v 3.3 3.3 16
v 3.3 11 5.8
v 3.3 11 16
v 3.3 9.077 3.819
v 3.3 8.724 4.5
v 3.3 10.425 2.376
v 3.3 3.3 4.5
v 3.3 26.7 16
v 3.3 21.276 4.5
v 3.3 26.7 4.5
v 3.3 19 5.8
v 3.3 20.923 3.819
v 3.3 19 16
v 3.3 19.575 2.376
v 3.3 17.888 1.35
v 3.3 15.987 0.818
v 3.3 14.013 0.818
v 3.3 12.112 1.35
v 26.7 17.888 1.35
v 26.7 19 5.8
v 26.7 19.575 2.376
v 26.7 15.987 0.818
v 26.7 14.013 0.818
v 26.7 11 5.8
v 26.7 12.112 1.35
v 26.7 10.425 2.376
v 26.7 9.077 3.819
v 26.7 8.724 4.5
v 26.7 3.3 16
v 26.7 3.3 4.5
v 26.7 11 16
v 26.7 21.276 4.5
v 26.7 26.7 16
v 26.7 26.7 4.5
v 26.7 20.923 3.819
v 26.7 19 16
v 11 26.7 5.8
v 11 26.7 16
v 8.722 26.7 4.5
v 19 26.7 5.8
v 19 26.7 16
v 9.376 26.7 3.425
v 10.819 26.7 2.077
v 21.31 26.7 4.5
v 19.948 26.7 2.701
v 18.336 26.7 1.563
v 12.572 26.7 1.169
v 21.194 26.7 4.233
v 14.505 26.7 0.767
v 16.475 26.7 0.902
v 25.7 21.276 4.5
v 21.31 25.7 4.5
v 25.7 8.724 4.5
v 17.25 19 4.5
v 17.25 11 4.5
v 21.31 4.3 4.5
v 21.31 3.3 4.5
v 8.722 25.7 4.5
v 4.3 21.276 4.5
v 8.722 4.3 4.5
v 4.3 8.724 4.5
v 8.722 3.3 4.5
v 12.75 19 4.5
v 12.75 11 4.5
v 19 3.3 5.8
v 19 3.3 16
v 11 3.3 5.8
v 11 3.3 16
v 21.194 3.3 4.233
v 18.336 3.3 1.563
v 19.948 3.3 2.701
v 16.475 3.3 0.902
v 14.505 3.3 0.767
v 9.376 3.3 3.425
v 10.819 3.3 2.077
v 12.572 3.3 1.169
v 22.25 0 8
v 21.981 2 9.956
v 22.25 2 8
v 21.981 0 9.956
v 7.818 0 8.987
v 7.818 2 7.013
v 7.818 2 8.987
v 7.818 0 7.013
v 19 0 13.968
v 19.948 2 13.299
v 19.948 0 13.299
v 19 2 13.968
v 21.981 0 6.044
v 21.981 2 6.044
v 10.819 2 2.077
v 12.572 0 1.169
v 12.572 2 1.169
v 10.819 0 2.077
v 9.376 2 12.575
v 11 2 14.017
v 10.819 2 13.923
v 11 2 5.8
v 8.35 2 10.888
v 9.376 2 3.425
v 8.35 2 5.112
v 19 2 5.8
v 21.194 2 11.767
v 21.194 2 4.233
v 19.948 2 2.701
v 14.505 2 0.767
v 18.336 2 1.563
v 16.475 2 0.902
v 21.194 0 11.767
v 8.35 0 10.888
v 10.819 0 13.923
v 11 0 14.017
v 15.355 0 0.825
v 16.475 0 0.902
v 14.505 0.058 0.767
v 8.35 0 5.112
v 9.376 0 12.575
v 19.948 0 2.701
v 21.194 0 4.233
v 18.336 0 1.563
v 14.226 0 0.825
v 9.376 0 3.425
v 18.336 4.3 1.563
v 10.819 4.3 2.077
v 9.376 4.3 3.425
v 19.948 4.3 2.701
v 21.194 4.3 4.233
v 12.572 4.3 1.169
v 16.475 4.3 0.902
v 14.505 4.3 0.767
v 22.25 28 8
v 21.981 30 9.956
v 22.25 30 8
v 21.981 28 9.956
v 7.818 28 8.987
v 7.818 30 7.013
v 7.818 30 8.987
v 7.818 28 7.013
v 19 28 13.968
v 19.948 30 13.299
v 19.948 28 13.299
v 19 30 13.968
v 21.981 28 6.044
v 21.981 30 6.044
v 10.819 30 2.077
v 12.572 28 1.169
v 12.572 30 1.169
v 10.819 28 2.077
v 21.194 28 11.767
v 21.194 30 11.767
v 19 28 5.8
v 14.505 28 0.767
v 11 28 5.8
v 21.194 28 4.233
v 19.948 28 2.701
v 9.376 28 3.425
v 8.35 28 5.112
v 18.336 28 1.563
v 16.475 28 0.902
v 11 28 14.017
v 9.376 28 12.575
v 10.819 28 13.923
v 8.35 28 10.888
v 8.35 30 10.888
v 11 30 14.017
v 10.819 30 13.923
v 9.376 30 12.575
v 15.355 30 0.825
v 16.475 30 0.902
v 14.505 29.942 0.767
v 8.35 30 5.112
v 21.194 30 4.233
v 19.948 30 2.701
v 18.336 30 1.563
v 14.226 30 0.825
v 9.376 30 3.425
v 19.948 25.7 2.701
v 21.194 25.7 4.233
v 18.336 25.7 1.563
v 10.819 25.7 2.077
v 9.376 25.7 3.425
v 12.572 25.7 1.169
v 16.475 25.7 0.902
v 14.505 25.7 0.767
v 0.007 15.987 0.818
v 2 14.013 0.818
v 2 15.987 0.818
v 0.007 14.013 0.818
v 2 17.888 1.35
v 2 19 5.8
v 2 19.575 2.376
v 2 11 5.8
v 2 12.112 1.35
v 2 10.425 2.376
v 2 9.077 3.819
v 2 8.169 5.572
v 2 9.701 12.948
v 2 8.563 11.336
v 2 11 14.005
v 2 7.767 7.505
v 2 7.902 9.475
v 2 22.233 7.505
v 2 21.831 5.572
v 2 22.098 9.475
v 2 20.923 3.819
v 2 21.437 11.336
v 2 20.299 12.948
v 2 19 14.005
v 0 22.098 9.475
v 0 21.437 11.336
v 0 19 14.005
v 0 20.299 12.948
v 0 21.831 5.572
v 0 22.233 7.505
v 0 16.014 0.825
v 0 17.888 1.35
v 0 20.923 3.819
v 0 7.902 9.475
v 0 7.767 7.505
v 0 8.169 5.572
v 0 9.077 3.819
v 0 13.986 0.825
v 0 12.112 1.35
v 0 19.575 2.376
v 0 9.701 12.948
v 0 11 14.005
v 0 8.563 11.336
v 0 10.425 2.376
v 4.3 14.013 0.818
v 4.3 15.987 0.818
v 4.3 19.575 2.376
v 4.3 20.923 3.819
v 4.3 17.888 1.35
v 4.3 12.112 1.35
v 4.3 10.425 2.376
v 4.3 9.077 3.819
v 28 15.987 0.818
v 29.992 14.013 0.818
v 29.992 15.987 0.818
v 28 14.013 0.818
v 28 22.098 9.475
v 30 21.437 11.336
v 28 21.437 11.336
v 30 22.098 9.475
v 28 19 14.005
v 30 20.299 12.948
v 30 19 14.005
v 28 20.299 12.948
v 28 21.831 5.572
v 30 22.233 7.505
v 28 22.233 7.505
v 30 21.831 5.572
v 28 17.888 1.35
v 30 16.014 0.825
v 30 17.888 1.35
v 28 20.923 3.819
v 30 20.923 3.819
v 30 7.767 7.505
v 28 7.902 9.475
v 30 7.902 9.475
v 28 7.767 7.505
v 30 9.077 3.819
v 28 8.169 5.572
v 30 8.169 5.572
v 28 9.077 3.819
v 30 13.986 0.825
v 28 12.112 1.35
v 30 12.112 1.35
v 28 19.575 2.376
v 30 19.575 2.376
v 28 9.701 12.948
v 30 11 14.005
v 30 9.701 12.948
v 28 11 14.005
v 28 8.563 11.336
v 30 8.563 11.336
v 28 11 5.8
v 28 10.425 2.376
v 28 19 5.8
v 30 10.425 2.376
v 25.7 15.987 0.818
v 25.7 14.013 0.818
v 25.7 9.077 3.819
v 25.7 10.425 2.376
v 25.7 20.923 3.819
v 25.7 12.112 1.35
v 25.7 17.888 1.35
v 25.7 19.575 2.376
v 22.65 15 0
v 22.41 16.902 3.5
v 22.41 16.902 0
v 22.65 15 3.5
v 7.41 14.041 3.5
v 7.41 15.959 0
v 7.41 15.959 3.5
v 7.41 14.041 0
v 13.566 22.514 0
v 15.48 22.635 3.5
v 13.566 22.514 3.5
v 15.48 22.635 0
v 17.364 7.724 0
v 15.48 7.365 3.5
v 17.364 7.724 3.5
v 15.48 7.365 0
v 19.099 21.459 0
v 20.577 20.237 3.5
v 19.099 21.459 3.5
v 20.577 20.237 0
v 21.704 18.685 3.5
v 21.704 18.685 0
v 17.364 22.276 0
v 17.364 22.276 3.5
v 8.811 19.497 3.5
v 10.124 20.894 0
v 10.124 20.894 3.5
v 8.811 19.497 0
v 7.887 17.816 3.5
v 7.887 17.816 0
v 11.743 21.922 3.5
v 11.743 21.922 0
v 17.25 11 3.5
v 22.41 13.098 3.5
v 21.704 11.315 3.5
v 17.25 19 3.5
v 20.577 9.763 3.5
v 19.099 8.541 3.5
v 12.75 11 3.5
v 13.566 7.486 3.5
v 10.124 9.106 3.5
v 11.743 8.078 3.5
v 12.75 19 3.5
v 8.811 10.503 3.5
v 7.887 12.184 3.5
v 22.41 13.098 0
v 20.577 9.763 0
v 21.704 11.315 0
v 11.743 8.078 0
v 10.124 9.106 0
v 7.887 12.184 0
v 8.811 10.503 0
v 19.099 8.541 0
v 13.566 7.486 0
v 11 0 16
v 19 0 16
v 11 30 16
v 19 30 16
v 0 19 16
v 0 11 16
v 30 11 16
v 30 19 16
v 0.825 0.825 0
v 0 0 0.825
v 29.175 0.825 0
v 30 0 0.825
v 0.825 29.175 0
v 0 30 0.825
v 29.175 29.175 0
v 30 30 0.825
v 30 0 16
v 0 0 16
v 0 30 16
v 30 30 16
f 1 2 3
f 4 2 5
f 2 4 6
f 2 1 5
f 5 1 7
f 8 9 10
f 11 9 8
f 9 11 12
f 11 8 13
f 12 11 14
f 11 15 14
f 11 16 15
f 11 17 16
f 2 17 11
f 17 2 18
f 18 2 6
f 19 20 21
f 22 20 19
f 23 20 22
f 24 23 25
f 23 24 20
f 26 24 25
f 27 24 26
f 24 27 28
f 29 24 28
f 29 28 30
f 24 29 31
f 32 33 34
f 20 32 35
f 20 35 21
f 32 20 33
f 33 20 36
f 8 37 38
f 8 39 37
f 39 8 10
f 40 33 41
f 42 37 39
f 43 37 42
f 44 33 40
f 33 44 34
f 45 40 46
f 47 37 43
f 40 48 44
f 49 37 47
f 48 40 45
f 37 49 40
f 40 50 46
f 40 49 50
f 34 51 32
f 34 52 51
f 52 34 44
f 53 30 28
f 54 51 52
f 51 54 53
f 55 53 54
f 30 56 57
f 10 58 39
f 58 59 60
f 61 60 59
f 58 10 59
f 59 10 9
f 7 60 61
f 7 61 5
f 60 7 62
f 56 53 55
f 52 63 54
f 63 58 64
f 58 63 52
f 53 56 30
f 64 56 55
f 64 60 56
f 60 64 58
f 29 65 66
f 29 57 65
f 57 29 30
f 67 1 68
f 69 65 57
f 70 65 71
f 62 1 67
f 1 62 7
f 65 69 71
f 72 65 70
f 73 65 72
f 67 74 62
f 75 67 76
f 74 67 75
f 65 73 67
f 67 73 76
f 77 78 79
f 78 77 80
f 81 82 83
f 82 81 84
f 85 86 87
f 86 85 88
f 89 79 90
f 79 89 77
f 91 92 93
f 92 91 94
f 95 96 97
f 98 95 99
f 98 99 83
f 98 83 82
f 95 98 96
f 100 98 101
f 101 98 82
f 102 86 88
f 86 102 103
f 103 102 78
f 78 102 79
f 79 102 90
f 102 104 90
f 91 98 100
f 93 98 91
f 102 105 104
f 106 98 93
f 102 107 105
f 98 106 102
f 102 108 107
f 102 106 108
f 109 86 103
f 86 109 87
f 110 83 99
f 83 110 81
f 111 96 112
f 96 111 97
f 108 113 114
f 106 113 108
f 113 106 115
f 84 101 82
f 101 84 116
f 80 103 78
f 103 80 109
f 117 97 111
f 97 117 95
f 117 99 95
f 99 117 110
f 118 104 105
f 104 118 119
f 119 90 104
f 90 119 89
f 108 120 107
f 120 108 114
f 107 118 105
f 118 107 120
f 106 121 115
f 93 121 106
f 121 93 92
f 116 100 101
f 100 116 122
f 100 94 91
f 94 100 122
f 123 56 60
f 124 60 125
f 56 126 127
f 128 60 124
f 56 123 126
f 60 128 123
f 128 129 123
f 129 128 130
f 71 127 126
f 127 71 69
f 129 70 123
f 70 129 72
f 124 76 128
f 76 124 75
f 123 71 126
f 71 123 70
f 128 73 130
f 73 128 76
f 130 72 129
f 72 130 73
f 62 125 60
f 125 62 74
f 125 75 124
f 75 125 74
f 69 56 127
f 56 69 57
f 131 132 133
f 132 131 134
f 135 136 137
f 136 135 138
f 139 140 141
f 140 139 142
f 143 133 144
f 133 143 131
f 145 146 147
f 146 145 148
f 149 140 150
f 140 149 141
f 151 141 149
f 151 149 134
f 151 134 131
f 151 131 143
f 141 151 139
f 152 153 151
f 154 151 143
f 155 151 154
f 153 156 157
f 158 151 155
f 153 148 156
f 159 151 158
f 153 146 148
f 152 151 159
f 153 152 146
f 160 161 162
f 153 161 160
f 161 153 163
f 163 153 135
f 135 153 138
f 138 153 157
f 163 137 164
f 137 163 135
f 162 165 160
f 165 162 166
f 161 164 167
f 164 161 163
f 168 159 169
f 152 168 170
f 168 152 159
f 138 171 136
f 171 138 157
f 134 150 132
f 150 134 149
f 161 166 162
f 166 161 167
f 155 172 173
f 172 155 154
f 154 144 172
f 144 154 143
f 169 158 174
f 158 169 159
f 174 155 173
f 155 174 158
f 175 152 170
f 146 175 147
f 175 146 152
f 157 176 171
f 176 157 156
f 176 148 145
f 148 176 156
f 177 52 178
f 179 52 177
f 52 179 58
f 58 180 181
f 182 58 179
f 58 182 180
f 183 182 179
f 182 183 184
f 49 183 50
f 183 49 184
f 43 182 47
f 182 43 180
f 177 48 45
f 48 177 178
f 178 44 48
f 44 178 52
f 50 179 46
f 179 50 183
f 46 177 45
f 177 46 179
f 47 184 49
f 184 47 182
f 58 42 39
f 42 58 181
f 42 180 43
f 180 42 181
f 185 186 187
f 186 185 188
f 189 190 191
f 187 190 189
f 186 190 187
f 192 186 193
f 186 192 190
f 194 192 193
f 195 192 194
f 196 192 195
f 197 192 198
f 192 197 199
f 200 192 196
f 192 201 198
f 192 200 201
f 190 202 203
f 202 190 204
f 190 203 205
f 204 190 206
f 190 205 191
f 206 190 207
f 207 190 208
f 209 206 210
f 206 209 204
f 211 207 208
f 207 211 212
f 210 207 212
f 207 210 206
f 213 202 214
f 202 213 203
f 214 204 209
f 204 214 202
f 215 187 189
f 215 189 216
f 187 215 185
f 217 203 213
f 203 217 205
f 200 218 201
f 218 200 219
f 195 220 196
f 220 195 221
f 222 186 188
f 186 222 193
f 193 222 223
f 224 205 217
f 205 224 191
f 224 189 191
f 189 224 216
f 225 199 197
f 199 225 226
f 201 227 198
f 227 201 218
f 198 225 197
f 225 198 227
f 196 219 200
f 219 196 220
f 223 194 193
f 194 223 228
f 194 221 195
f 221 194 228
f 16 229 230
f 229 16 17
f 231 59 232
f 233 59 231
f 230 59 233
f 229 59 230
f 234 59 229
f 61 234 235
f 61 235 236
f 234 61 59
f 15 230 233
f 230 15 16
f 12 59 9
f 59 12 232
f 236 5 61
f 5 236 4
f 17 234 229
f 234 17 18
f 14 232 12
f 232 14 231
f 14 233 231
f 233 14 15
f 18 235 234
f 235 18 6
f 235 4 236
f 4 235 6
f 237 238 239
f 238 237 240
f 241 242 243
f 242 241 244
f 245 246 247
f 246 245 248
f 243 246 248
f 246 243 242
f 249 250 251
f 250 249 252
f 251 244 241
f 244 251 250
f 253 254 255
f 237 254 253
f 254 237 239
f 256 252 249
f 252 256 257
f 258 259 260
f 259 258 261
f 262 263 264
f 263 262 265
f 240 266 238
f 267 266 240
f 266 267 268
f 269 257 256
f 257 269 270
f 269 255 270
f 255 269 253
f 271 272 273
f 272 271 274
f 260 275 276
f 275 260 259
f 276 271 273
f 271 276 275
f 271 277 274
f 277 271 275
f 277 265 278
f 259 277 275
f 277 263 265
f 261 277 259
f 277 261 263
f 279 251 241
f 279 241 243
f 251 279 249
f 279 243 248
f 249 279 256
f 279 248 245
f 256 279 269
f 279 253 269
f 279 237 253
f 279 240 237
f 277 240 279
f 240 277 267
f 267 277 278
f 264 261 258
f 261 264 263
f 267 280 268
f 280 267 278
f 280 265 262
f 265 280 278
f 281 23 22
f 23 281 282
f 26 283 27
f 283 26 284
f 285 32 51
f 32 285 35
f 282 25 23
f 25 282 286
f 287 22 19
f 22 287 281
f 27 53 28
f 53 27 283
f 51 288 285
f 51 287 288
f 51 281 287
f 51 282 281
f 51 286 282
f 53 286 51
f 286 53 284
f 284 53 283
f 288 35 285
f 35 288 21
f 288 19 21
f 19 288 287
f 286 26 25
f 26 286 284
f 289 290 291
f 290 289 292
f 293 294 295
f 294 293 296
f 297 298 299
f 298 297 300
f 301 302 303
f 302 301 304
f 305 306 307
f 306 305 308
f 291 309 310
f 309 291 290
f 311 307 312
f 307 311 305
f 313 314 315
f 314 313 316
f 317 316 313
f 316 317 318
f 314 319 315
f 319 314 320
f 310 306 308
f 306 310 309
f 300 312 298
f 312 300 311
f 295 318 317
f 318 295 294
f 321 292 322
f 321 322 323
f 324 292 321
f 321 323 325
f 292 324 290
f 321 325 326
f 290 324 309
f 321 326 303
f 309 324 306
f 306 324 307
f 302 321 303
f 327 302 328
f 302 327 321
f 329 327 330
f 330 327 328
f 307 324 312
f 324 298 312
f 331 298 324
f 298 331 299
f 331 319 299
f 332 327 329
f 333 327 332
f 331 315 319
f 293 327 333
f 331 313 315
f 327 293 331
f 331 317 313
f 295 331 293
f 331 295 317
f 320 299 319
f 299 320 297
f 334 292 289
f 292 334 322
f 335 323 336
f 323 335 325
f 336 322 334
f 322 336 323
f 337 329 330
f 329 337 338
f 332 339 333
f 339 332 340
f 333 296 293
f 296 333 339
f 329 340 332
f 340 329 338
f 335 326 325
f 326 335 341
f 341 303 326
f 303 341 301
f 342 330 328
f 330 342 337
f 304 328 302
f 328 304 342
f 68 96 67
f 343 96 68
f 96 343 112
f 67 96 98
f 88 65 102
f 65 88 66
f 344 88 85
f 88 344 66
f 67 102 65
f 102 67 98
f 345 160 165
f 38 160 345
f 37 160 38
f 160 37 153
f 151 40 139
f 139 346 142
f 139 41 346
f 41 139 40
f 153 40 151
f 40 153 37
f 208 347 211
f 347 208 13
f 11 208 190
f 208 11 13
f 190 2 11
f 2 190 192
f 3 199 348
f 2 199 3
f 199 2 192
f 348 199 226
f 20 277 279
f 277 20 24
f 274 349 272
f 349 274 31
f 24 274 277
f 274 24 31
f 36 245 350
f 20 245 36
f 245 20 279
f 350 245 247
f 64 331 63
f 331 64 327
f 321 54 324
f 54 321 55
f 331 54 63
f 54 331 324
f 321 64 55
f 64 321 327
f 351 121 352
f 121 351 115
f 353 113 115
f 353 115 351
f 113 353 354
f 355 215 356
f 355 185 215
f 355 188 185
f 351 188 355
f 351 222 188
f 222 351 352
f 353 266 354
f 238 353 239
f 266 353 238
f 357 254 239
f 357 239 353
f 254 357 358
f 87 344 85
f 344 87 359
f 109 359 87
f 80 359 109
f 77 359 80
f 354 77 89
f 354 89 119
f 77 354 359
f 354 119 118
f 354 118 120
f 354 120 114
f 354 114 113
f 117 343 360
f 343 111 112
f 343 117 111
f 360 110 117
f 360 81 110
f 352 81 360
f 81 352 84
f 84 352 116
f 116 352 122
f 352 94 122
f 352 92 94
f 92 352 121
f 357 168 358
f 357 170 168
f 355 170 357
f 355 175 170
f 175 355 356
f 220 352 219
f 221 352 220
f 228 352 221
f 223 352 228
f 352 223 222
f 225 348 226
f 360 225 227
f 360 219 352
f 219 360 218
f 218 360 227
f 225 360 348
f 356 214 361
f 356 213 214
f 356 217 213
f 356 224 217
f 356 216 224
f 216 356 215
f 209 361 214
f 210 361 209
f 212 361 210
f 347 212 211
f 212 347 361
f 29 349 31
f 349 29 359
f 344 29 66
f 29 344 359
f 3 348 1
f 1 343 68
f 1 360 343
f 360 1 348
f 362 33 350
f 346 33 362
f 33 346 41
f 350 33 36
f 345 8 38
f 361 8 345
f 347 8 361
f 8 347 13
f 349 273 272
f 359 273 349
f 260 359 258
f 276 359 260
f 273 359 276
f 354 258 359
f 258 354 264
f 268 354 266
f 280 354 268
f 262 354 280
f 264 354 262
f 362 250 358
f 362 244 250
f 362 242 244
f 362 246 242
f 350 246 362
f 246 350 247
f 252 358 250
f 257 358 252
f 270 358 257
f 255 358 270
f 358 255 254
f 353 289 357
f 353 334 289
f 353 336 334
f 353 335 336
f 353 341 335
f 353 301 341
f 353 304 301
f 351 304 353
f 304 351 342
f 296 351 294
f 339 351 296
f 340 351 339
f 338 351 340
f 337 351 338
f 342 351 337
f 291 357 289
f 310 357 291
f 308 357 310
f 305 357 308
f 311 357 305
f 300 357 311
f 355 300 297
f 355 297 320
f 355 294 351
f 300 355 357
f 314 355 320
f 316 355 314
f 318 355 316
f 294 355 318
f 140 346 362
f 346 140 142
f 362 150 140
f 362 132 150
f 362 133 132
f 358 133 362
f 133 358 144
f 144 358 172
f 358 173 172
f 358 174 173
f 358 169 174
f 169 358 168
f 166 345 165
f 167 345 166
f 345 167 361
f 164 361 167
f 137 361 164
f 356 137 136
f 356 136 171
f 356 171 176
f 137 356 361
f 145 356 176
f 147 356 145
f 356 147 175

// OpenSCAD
// file: settings.scad
cube_width=30;
cube_height=16;
cube_thickness=3.3;
cube_bottom_thickness = cube_thickness+1.2;

cap_width=30;
cap_height=6;
cap_thickness=3.3;

glyph_depth=0.7;
glyph_thickness=1.5;

photo_resitor_hole_r = 2.4;
spring_contact_hole_r = 3.125;
// main file
include <settings.scad>

module radio_cube_1x1(width, height, thickness)
{
    difference()
    {
        cube([width,width,height]);
        union()
        {
            translate([thickness,thickness,thickness+1.2]) cube([width-2*thickness,width-2*thickness,height+10]);
            
            //-y
            translate([width/2,2.0,8])rotate([90,0,0])cylinder(r=14.5/2, h=2.6);
            translate([width/2,thickness+1,8])rotate([90,0,0])cylinder(r=14.5/2, h=1);
            
            // y
            translate([width/2,width+0.6,8])rotate([90,0,0])cylinder(r=14.5/2, h=2.6);
            translate([width/2,width-thickness,8])rotate([90,0,0])cylinder(r=14.5/2, h=1);
            
            //-x
            translate([2.0,width/2,8])rotate([0,-90,0])cylinder(r=14.5/2, h=2.6);
            translate([thickness+1,width/2,8])rotate([0,-90,0])cylinder(r=14.5/2, h=1);
            
            // x
            translate([width+0.6,width/2,8])rotate([0,-90,0])cylinder(r=14.5/2, h=2.6);
            translate([width-thickness,width/2,8])rotate([0,-90,0])cylinder(r=14.5/2, h=1);

            //bottom
            translate([width/2,width/2,-0.1]) cylinder(r=15.3/2, h=3.6);
            
            //cutouts
            // -y
            translate([width/2-4,-0.2,5.8])cube([8,20,15]);
            // y
            translate([width/2-4, width-10,5.8])cube([8,20,15]);
            // -x
            translate([-0.2,width/2-4,5.8])cube([20,8,15]);
            // x
            translate([width-10,width/2-4,5.8])cube([20,8,15]);
            // bottom
            translate([width/2-2.25,width/2-4,0])cube([4.5,8,15]);
            
            //corners
            translate([0,0.25*thickness,0])rotate([45,0,0]) translate([-0.5*width, -width, -0.5*height]) cube([2*width, width, 2*height]);
            translate([0.25*thickness,0,0]) rotate([0,-45,0]) translate([-width, -0.5*width, -0.5*height]) cube([width, 2*width, 2*height]);
            translate([width-0.25*thickness,0,0]) rotate([0,45,0]) translate([0, 0, -0.5*height]) cube([width, 2*width, 2*height]);
            translate([0,width-0.25*thickness,0]) rotate([-45,0,0]) translate([-0.5*width, 0, -0.5*height]) cube([2*width, width, 2*height]);
        }
    }
}

radio_cube_1x1(cube_width, cube_height, cube_thickness);
